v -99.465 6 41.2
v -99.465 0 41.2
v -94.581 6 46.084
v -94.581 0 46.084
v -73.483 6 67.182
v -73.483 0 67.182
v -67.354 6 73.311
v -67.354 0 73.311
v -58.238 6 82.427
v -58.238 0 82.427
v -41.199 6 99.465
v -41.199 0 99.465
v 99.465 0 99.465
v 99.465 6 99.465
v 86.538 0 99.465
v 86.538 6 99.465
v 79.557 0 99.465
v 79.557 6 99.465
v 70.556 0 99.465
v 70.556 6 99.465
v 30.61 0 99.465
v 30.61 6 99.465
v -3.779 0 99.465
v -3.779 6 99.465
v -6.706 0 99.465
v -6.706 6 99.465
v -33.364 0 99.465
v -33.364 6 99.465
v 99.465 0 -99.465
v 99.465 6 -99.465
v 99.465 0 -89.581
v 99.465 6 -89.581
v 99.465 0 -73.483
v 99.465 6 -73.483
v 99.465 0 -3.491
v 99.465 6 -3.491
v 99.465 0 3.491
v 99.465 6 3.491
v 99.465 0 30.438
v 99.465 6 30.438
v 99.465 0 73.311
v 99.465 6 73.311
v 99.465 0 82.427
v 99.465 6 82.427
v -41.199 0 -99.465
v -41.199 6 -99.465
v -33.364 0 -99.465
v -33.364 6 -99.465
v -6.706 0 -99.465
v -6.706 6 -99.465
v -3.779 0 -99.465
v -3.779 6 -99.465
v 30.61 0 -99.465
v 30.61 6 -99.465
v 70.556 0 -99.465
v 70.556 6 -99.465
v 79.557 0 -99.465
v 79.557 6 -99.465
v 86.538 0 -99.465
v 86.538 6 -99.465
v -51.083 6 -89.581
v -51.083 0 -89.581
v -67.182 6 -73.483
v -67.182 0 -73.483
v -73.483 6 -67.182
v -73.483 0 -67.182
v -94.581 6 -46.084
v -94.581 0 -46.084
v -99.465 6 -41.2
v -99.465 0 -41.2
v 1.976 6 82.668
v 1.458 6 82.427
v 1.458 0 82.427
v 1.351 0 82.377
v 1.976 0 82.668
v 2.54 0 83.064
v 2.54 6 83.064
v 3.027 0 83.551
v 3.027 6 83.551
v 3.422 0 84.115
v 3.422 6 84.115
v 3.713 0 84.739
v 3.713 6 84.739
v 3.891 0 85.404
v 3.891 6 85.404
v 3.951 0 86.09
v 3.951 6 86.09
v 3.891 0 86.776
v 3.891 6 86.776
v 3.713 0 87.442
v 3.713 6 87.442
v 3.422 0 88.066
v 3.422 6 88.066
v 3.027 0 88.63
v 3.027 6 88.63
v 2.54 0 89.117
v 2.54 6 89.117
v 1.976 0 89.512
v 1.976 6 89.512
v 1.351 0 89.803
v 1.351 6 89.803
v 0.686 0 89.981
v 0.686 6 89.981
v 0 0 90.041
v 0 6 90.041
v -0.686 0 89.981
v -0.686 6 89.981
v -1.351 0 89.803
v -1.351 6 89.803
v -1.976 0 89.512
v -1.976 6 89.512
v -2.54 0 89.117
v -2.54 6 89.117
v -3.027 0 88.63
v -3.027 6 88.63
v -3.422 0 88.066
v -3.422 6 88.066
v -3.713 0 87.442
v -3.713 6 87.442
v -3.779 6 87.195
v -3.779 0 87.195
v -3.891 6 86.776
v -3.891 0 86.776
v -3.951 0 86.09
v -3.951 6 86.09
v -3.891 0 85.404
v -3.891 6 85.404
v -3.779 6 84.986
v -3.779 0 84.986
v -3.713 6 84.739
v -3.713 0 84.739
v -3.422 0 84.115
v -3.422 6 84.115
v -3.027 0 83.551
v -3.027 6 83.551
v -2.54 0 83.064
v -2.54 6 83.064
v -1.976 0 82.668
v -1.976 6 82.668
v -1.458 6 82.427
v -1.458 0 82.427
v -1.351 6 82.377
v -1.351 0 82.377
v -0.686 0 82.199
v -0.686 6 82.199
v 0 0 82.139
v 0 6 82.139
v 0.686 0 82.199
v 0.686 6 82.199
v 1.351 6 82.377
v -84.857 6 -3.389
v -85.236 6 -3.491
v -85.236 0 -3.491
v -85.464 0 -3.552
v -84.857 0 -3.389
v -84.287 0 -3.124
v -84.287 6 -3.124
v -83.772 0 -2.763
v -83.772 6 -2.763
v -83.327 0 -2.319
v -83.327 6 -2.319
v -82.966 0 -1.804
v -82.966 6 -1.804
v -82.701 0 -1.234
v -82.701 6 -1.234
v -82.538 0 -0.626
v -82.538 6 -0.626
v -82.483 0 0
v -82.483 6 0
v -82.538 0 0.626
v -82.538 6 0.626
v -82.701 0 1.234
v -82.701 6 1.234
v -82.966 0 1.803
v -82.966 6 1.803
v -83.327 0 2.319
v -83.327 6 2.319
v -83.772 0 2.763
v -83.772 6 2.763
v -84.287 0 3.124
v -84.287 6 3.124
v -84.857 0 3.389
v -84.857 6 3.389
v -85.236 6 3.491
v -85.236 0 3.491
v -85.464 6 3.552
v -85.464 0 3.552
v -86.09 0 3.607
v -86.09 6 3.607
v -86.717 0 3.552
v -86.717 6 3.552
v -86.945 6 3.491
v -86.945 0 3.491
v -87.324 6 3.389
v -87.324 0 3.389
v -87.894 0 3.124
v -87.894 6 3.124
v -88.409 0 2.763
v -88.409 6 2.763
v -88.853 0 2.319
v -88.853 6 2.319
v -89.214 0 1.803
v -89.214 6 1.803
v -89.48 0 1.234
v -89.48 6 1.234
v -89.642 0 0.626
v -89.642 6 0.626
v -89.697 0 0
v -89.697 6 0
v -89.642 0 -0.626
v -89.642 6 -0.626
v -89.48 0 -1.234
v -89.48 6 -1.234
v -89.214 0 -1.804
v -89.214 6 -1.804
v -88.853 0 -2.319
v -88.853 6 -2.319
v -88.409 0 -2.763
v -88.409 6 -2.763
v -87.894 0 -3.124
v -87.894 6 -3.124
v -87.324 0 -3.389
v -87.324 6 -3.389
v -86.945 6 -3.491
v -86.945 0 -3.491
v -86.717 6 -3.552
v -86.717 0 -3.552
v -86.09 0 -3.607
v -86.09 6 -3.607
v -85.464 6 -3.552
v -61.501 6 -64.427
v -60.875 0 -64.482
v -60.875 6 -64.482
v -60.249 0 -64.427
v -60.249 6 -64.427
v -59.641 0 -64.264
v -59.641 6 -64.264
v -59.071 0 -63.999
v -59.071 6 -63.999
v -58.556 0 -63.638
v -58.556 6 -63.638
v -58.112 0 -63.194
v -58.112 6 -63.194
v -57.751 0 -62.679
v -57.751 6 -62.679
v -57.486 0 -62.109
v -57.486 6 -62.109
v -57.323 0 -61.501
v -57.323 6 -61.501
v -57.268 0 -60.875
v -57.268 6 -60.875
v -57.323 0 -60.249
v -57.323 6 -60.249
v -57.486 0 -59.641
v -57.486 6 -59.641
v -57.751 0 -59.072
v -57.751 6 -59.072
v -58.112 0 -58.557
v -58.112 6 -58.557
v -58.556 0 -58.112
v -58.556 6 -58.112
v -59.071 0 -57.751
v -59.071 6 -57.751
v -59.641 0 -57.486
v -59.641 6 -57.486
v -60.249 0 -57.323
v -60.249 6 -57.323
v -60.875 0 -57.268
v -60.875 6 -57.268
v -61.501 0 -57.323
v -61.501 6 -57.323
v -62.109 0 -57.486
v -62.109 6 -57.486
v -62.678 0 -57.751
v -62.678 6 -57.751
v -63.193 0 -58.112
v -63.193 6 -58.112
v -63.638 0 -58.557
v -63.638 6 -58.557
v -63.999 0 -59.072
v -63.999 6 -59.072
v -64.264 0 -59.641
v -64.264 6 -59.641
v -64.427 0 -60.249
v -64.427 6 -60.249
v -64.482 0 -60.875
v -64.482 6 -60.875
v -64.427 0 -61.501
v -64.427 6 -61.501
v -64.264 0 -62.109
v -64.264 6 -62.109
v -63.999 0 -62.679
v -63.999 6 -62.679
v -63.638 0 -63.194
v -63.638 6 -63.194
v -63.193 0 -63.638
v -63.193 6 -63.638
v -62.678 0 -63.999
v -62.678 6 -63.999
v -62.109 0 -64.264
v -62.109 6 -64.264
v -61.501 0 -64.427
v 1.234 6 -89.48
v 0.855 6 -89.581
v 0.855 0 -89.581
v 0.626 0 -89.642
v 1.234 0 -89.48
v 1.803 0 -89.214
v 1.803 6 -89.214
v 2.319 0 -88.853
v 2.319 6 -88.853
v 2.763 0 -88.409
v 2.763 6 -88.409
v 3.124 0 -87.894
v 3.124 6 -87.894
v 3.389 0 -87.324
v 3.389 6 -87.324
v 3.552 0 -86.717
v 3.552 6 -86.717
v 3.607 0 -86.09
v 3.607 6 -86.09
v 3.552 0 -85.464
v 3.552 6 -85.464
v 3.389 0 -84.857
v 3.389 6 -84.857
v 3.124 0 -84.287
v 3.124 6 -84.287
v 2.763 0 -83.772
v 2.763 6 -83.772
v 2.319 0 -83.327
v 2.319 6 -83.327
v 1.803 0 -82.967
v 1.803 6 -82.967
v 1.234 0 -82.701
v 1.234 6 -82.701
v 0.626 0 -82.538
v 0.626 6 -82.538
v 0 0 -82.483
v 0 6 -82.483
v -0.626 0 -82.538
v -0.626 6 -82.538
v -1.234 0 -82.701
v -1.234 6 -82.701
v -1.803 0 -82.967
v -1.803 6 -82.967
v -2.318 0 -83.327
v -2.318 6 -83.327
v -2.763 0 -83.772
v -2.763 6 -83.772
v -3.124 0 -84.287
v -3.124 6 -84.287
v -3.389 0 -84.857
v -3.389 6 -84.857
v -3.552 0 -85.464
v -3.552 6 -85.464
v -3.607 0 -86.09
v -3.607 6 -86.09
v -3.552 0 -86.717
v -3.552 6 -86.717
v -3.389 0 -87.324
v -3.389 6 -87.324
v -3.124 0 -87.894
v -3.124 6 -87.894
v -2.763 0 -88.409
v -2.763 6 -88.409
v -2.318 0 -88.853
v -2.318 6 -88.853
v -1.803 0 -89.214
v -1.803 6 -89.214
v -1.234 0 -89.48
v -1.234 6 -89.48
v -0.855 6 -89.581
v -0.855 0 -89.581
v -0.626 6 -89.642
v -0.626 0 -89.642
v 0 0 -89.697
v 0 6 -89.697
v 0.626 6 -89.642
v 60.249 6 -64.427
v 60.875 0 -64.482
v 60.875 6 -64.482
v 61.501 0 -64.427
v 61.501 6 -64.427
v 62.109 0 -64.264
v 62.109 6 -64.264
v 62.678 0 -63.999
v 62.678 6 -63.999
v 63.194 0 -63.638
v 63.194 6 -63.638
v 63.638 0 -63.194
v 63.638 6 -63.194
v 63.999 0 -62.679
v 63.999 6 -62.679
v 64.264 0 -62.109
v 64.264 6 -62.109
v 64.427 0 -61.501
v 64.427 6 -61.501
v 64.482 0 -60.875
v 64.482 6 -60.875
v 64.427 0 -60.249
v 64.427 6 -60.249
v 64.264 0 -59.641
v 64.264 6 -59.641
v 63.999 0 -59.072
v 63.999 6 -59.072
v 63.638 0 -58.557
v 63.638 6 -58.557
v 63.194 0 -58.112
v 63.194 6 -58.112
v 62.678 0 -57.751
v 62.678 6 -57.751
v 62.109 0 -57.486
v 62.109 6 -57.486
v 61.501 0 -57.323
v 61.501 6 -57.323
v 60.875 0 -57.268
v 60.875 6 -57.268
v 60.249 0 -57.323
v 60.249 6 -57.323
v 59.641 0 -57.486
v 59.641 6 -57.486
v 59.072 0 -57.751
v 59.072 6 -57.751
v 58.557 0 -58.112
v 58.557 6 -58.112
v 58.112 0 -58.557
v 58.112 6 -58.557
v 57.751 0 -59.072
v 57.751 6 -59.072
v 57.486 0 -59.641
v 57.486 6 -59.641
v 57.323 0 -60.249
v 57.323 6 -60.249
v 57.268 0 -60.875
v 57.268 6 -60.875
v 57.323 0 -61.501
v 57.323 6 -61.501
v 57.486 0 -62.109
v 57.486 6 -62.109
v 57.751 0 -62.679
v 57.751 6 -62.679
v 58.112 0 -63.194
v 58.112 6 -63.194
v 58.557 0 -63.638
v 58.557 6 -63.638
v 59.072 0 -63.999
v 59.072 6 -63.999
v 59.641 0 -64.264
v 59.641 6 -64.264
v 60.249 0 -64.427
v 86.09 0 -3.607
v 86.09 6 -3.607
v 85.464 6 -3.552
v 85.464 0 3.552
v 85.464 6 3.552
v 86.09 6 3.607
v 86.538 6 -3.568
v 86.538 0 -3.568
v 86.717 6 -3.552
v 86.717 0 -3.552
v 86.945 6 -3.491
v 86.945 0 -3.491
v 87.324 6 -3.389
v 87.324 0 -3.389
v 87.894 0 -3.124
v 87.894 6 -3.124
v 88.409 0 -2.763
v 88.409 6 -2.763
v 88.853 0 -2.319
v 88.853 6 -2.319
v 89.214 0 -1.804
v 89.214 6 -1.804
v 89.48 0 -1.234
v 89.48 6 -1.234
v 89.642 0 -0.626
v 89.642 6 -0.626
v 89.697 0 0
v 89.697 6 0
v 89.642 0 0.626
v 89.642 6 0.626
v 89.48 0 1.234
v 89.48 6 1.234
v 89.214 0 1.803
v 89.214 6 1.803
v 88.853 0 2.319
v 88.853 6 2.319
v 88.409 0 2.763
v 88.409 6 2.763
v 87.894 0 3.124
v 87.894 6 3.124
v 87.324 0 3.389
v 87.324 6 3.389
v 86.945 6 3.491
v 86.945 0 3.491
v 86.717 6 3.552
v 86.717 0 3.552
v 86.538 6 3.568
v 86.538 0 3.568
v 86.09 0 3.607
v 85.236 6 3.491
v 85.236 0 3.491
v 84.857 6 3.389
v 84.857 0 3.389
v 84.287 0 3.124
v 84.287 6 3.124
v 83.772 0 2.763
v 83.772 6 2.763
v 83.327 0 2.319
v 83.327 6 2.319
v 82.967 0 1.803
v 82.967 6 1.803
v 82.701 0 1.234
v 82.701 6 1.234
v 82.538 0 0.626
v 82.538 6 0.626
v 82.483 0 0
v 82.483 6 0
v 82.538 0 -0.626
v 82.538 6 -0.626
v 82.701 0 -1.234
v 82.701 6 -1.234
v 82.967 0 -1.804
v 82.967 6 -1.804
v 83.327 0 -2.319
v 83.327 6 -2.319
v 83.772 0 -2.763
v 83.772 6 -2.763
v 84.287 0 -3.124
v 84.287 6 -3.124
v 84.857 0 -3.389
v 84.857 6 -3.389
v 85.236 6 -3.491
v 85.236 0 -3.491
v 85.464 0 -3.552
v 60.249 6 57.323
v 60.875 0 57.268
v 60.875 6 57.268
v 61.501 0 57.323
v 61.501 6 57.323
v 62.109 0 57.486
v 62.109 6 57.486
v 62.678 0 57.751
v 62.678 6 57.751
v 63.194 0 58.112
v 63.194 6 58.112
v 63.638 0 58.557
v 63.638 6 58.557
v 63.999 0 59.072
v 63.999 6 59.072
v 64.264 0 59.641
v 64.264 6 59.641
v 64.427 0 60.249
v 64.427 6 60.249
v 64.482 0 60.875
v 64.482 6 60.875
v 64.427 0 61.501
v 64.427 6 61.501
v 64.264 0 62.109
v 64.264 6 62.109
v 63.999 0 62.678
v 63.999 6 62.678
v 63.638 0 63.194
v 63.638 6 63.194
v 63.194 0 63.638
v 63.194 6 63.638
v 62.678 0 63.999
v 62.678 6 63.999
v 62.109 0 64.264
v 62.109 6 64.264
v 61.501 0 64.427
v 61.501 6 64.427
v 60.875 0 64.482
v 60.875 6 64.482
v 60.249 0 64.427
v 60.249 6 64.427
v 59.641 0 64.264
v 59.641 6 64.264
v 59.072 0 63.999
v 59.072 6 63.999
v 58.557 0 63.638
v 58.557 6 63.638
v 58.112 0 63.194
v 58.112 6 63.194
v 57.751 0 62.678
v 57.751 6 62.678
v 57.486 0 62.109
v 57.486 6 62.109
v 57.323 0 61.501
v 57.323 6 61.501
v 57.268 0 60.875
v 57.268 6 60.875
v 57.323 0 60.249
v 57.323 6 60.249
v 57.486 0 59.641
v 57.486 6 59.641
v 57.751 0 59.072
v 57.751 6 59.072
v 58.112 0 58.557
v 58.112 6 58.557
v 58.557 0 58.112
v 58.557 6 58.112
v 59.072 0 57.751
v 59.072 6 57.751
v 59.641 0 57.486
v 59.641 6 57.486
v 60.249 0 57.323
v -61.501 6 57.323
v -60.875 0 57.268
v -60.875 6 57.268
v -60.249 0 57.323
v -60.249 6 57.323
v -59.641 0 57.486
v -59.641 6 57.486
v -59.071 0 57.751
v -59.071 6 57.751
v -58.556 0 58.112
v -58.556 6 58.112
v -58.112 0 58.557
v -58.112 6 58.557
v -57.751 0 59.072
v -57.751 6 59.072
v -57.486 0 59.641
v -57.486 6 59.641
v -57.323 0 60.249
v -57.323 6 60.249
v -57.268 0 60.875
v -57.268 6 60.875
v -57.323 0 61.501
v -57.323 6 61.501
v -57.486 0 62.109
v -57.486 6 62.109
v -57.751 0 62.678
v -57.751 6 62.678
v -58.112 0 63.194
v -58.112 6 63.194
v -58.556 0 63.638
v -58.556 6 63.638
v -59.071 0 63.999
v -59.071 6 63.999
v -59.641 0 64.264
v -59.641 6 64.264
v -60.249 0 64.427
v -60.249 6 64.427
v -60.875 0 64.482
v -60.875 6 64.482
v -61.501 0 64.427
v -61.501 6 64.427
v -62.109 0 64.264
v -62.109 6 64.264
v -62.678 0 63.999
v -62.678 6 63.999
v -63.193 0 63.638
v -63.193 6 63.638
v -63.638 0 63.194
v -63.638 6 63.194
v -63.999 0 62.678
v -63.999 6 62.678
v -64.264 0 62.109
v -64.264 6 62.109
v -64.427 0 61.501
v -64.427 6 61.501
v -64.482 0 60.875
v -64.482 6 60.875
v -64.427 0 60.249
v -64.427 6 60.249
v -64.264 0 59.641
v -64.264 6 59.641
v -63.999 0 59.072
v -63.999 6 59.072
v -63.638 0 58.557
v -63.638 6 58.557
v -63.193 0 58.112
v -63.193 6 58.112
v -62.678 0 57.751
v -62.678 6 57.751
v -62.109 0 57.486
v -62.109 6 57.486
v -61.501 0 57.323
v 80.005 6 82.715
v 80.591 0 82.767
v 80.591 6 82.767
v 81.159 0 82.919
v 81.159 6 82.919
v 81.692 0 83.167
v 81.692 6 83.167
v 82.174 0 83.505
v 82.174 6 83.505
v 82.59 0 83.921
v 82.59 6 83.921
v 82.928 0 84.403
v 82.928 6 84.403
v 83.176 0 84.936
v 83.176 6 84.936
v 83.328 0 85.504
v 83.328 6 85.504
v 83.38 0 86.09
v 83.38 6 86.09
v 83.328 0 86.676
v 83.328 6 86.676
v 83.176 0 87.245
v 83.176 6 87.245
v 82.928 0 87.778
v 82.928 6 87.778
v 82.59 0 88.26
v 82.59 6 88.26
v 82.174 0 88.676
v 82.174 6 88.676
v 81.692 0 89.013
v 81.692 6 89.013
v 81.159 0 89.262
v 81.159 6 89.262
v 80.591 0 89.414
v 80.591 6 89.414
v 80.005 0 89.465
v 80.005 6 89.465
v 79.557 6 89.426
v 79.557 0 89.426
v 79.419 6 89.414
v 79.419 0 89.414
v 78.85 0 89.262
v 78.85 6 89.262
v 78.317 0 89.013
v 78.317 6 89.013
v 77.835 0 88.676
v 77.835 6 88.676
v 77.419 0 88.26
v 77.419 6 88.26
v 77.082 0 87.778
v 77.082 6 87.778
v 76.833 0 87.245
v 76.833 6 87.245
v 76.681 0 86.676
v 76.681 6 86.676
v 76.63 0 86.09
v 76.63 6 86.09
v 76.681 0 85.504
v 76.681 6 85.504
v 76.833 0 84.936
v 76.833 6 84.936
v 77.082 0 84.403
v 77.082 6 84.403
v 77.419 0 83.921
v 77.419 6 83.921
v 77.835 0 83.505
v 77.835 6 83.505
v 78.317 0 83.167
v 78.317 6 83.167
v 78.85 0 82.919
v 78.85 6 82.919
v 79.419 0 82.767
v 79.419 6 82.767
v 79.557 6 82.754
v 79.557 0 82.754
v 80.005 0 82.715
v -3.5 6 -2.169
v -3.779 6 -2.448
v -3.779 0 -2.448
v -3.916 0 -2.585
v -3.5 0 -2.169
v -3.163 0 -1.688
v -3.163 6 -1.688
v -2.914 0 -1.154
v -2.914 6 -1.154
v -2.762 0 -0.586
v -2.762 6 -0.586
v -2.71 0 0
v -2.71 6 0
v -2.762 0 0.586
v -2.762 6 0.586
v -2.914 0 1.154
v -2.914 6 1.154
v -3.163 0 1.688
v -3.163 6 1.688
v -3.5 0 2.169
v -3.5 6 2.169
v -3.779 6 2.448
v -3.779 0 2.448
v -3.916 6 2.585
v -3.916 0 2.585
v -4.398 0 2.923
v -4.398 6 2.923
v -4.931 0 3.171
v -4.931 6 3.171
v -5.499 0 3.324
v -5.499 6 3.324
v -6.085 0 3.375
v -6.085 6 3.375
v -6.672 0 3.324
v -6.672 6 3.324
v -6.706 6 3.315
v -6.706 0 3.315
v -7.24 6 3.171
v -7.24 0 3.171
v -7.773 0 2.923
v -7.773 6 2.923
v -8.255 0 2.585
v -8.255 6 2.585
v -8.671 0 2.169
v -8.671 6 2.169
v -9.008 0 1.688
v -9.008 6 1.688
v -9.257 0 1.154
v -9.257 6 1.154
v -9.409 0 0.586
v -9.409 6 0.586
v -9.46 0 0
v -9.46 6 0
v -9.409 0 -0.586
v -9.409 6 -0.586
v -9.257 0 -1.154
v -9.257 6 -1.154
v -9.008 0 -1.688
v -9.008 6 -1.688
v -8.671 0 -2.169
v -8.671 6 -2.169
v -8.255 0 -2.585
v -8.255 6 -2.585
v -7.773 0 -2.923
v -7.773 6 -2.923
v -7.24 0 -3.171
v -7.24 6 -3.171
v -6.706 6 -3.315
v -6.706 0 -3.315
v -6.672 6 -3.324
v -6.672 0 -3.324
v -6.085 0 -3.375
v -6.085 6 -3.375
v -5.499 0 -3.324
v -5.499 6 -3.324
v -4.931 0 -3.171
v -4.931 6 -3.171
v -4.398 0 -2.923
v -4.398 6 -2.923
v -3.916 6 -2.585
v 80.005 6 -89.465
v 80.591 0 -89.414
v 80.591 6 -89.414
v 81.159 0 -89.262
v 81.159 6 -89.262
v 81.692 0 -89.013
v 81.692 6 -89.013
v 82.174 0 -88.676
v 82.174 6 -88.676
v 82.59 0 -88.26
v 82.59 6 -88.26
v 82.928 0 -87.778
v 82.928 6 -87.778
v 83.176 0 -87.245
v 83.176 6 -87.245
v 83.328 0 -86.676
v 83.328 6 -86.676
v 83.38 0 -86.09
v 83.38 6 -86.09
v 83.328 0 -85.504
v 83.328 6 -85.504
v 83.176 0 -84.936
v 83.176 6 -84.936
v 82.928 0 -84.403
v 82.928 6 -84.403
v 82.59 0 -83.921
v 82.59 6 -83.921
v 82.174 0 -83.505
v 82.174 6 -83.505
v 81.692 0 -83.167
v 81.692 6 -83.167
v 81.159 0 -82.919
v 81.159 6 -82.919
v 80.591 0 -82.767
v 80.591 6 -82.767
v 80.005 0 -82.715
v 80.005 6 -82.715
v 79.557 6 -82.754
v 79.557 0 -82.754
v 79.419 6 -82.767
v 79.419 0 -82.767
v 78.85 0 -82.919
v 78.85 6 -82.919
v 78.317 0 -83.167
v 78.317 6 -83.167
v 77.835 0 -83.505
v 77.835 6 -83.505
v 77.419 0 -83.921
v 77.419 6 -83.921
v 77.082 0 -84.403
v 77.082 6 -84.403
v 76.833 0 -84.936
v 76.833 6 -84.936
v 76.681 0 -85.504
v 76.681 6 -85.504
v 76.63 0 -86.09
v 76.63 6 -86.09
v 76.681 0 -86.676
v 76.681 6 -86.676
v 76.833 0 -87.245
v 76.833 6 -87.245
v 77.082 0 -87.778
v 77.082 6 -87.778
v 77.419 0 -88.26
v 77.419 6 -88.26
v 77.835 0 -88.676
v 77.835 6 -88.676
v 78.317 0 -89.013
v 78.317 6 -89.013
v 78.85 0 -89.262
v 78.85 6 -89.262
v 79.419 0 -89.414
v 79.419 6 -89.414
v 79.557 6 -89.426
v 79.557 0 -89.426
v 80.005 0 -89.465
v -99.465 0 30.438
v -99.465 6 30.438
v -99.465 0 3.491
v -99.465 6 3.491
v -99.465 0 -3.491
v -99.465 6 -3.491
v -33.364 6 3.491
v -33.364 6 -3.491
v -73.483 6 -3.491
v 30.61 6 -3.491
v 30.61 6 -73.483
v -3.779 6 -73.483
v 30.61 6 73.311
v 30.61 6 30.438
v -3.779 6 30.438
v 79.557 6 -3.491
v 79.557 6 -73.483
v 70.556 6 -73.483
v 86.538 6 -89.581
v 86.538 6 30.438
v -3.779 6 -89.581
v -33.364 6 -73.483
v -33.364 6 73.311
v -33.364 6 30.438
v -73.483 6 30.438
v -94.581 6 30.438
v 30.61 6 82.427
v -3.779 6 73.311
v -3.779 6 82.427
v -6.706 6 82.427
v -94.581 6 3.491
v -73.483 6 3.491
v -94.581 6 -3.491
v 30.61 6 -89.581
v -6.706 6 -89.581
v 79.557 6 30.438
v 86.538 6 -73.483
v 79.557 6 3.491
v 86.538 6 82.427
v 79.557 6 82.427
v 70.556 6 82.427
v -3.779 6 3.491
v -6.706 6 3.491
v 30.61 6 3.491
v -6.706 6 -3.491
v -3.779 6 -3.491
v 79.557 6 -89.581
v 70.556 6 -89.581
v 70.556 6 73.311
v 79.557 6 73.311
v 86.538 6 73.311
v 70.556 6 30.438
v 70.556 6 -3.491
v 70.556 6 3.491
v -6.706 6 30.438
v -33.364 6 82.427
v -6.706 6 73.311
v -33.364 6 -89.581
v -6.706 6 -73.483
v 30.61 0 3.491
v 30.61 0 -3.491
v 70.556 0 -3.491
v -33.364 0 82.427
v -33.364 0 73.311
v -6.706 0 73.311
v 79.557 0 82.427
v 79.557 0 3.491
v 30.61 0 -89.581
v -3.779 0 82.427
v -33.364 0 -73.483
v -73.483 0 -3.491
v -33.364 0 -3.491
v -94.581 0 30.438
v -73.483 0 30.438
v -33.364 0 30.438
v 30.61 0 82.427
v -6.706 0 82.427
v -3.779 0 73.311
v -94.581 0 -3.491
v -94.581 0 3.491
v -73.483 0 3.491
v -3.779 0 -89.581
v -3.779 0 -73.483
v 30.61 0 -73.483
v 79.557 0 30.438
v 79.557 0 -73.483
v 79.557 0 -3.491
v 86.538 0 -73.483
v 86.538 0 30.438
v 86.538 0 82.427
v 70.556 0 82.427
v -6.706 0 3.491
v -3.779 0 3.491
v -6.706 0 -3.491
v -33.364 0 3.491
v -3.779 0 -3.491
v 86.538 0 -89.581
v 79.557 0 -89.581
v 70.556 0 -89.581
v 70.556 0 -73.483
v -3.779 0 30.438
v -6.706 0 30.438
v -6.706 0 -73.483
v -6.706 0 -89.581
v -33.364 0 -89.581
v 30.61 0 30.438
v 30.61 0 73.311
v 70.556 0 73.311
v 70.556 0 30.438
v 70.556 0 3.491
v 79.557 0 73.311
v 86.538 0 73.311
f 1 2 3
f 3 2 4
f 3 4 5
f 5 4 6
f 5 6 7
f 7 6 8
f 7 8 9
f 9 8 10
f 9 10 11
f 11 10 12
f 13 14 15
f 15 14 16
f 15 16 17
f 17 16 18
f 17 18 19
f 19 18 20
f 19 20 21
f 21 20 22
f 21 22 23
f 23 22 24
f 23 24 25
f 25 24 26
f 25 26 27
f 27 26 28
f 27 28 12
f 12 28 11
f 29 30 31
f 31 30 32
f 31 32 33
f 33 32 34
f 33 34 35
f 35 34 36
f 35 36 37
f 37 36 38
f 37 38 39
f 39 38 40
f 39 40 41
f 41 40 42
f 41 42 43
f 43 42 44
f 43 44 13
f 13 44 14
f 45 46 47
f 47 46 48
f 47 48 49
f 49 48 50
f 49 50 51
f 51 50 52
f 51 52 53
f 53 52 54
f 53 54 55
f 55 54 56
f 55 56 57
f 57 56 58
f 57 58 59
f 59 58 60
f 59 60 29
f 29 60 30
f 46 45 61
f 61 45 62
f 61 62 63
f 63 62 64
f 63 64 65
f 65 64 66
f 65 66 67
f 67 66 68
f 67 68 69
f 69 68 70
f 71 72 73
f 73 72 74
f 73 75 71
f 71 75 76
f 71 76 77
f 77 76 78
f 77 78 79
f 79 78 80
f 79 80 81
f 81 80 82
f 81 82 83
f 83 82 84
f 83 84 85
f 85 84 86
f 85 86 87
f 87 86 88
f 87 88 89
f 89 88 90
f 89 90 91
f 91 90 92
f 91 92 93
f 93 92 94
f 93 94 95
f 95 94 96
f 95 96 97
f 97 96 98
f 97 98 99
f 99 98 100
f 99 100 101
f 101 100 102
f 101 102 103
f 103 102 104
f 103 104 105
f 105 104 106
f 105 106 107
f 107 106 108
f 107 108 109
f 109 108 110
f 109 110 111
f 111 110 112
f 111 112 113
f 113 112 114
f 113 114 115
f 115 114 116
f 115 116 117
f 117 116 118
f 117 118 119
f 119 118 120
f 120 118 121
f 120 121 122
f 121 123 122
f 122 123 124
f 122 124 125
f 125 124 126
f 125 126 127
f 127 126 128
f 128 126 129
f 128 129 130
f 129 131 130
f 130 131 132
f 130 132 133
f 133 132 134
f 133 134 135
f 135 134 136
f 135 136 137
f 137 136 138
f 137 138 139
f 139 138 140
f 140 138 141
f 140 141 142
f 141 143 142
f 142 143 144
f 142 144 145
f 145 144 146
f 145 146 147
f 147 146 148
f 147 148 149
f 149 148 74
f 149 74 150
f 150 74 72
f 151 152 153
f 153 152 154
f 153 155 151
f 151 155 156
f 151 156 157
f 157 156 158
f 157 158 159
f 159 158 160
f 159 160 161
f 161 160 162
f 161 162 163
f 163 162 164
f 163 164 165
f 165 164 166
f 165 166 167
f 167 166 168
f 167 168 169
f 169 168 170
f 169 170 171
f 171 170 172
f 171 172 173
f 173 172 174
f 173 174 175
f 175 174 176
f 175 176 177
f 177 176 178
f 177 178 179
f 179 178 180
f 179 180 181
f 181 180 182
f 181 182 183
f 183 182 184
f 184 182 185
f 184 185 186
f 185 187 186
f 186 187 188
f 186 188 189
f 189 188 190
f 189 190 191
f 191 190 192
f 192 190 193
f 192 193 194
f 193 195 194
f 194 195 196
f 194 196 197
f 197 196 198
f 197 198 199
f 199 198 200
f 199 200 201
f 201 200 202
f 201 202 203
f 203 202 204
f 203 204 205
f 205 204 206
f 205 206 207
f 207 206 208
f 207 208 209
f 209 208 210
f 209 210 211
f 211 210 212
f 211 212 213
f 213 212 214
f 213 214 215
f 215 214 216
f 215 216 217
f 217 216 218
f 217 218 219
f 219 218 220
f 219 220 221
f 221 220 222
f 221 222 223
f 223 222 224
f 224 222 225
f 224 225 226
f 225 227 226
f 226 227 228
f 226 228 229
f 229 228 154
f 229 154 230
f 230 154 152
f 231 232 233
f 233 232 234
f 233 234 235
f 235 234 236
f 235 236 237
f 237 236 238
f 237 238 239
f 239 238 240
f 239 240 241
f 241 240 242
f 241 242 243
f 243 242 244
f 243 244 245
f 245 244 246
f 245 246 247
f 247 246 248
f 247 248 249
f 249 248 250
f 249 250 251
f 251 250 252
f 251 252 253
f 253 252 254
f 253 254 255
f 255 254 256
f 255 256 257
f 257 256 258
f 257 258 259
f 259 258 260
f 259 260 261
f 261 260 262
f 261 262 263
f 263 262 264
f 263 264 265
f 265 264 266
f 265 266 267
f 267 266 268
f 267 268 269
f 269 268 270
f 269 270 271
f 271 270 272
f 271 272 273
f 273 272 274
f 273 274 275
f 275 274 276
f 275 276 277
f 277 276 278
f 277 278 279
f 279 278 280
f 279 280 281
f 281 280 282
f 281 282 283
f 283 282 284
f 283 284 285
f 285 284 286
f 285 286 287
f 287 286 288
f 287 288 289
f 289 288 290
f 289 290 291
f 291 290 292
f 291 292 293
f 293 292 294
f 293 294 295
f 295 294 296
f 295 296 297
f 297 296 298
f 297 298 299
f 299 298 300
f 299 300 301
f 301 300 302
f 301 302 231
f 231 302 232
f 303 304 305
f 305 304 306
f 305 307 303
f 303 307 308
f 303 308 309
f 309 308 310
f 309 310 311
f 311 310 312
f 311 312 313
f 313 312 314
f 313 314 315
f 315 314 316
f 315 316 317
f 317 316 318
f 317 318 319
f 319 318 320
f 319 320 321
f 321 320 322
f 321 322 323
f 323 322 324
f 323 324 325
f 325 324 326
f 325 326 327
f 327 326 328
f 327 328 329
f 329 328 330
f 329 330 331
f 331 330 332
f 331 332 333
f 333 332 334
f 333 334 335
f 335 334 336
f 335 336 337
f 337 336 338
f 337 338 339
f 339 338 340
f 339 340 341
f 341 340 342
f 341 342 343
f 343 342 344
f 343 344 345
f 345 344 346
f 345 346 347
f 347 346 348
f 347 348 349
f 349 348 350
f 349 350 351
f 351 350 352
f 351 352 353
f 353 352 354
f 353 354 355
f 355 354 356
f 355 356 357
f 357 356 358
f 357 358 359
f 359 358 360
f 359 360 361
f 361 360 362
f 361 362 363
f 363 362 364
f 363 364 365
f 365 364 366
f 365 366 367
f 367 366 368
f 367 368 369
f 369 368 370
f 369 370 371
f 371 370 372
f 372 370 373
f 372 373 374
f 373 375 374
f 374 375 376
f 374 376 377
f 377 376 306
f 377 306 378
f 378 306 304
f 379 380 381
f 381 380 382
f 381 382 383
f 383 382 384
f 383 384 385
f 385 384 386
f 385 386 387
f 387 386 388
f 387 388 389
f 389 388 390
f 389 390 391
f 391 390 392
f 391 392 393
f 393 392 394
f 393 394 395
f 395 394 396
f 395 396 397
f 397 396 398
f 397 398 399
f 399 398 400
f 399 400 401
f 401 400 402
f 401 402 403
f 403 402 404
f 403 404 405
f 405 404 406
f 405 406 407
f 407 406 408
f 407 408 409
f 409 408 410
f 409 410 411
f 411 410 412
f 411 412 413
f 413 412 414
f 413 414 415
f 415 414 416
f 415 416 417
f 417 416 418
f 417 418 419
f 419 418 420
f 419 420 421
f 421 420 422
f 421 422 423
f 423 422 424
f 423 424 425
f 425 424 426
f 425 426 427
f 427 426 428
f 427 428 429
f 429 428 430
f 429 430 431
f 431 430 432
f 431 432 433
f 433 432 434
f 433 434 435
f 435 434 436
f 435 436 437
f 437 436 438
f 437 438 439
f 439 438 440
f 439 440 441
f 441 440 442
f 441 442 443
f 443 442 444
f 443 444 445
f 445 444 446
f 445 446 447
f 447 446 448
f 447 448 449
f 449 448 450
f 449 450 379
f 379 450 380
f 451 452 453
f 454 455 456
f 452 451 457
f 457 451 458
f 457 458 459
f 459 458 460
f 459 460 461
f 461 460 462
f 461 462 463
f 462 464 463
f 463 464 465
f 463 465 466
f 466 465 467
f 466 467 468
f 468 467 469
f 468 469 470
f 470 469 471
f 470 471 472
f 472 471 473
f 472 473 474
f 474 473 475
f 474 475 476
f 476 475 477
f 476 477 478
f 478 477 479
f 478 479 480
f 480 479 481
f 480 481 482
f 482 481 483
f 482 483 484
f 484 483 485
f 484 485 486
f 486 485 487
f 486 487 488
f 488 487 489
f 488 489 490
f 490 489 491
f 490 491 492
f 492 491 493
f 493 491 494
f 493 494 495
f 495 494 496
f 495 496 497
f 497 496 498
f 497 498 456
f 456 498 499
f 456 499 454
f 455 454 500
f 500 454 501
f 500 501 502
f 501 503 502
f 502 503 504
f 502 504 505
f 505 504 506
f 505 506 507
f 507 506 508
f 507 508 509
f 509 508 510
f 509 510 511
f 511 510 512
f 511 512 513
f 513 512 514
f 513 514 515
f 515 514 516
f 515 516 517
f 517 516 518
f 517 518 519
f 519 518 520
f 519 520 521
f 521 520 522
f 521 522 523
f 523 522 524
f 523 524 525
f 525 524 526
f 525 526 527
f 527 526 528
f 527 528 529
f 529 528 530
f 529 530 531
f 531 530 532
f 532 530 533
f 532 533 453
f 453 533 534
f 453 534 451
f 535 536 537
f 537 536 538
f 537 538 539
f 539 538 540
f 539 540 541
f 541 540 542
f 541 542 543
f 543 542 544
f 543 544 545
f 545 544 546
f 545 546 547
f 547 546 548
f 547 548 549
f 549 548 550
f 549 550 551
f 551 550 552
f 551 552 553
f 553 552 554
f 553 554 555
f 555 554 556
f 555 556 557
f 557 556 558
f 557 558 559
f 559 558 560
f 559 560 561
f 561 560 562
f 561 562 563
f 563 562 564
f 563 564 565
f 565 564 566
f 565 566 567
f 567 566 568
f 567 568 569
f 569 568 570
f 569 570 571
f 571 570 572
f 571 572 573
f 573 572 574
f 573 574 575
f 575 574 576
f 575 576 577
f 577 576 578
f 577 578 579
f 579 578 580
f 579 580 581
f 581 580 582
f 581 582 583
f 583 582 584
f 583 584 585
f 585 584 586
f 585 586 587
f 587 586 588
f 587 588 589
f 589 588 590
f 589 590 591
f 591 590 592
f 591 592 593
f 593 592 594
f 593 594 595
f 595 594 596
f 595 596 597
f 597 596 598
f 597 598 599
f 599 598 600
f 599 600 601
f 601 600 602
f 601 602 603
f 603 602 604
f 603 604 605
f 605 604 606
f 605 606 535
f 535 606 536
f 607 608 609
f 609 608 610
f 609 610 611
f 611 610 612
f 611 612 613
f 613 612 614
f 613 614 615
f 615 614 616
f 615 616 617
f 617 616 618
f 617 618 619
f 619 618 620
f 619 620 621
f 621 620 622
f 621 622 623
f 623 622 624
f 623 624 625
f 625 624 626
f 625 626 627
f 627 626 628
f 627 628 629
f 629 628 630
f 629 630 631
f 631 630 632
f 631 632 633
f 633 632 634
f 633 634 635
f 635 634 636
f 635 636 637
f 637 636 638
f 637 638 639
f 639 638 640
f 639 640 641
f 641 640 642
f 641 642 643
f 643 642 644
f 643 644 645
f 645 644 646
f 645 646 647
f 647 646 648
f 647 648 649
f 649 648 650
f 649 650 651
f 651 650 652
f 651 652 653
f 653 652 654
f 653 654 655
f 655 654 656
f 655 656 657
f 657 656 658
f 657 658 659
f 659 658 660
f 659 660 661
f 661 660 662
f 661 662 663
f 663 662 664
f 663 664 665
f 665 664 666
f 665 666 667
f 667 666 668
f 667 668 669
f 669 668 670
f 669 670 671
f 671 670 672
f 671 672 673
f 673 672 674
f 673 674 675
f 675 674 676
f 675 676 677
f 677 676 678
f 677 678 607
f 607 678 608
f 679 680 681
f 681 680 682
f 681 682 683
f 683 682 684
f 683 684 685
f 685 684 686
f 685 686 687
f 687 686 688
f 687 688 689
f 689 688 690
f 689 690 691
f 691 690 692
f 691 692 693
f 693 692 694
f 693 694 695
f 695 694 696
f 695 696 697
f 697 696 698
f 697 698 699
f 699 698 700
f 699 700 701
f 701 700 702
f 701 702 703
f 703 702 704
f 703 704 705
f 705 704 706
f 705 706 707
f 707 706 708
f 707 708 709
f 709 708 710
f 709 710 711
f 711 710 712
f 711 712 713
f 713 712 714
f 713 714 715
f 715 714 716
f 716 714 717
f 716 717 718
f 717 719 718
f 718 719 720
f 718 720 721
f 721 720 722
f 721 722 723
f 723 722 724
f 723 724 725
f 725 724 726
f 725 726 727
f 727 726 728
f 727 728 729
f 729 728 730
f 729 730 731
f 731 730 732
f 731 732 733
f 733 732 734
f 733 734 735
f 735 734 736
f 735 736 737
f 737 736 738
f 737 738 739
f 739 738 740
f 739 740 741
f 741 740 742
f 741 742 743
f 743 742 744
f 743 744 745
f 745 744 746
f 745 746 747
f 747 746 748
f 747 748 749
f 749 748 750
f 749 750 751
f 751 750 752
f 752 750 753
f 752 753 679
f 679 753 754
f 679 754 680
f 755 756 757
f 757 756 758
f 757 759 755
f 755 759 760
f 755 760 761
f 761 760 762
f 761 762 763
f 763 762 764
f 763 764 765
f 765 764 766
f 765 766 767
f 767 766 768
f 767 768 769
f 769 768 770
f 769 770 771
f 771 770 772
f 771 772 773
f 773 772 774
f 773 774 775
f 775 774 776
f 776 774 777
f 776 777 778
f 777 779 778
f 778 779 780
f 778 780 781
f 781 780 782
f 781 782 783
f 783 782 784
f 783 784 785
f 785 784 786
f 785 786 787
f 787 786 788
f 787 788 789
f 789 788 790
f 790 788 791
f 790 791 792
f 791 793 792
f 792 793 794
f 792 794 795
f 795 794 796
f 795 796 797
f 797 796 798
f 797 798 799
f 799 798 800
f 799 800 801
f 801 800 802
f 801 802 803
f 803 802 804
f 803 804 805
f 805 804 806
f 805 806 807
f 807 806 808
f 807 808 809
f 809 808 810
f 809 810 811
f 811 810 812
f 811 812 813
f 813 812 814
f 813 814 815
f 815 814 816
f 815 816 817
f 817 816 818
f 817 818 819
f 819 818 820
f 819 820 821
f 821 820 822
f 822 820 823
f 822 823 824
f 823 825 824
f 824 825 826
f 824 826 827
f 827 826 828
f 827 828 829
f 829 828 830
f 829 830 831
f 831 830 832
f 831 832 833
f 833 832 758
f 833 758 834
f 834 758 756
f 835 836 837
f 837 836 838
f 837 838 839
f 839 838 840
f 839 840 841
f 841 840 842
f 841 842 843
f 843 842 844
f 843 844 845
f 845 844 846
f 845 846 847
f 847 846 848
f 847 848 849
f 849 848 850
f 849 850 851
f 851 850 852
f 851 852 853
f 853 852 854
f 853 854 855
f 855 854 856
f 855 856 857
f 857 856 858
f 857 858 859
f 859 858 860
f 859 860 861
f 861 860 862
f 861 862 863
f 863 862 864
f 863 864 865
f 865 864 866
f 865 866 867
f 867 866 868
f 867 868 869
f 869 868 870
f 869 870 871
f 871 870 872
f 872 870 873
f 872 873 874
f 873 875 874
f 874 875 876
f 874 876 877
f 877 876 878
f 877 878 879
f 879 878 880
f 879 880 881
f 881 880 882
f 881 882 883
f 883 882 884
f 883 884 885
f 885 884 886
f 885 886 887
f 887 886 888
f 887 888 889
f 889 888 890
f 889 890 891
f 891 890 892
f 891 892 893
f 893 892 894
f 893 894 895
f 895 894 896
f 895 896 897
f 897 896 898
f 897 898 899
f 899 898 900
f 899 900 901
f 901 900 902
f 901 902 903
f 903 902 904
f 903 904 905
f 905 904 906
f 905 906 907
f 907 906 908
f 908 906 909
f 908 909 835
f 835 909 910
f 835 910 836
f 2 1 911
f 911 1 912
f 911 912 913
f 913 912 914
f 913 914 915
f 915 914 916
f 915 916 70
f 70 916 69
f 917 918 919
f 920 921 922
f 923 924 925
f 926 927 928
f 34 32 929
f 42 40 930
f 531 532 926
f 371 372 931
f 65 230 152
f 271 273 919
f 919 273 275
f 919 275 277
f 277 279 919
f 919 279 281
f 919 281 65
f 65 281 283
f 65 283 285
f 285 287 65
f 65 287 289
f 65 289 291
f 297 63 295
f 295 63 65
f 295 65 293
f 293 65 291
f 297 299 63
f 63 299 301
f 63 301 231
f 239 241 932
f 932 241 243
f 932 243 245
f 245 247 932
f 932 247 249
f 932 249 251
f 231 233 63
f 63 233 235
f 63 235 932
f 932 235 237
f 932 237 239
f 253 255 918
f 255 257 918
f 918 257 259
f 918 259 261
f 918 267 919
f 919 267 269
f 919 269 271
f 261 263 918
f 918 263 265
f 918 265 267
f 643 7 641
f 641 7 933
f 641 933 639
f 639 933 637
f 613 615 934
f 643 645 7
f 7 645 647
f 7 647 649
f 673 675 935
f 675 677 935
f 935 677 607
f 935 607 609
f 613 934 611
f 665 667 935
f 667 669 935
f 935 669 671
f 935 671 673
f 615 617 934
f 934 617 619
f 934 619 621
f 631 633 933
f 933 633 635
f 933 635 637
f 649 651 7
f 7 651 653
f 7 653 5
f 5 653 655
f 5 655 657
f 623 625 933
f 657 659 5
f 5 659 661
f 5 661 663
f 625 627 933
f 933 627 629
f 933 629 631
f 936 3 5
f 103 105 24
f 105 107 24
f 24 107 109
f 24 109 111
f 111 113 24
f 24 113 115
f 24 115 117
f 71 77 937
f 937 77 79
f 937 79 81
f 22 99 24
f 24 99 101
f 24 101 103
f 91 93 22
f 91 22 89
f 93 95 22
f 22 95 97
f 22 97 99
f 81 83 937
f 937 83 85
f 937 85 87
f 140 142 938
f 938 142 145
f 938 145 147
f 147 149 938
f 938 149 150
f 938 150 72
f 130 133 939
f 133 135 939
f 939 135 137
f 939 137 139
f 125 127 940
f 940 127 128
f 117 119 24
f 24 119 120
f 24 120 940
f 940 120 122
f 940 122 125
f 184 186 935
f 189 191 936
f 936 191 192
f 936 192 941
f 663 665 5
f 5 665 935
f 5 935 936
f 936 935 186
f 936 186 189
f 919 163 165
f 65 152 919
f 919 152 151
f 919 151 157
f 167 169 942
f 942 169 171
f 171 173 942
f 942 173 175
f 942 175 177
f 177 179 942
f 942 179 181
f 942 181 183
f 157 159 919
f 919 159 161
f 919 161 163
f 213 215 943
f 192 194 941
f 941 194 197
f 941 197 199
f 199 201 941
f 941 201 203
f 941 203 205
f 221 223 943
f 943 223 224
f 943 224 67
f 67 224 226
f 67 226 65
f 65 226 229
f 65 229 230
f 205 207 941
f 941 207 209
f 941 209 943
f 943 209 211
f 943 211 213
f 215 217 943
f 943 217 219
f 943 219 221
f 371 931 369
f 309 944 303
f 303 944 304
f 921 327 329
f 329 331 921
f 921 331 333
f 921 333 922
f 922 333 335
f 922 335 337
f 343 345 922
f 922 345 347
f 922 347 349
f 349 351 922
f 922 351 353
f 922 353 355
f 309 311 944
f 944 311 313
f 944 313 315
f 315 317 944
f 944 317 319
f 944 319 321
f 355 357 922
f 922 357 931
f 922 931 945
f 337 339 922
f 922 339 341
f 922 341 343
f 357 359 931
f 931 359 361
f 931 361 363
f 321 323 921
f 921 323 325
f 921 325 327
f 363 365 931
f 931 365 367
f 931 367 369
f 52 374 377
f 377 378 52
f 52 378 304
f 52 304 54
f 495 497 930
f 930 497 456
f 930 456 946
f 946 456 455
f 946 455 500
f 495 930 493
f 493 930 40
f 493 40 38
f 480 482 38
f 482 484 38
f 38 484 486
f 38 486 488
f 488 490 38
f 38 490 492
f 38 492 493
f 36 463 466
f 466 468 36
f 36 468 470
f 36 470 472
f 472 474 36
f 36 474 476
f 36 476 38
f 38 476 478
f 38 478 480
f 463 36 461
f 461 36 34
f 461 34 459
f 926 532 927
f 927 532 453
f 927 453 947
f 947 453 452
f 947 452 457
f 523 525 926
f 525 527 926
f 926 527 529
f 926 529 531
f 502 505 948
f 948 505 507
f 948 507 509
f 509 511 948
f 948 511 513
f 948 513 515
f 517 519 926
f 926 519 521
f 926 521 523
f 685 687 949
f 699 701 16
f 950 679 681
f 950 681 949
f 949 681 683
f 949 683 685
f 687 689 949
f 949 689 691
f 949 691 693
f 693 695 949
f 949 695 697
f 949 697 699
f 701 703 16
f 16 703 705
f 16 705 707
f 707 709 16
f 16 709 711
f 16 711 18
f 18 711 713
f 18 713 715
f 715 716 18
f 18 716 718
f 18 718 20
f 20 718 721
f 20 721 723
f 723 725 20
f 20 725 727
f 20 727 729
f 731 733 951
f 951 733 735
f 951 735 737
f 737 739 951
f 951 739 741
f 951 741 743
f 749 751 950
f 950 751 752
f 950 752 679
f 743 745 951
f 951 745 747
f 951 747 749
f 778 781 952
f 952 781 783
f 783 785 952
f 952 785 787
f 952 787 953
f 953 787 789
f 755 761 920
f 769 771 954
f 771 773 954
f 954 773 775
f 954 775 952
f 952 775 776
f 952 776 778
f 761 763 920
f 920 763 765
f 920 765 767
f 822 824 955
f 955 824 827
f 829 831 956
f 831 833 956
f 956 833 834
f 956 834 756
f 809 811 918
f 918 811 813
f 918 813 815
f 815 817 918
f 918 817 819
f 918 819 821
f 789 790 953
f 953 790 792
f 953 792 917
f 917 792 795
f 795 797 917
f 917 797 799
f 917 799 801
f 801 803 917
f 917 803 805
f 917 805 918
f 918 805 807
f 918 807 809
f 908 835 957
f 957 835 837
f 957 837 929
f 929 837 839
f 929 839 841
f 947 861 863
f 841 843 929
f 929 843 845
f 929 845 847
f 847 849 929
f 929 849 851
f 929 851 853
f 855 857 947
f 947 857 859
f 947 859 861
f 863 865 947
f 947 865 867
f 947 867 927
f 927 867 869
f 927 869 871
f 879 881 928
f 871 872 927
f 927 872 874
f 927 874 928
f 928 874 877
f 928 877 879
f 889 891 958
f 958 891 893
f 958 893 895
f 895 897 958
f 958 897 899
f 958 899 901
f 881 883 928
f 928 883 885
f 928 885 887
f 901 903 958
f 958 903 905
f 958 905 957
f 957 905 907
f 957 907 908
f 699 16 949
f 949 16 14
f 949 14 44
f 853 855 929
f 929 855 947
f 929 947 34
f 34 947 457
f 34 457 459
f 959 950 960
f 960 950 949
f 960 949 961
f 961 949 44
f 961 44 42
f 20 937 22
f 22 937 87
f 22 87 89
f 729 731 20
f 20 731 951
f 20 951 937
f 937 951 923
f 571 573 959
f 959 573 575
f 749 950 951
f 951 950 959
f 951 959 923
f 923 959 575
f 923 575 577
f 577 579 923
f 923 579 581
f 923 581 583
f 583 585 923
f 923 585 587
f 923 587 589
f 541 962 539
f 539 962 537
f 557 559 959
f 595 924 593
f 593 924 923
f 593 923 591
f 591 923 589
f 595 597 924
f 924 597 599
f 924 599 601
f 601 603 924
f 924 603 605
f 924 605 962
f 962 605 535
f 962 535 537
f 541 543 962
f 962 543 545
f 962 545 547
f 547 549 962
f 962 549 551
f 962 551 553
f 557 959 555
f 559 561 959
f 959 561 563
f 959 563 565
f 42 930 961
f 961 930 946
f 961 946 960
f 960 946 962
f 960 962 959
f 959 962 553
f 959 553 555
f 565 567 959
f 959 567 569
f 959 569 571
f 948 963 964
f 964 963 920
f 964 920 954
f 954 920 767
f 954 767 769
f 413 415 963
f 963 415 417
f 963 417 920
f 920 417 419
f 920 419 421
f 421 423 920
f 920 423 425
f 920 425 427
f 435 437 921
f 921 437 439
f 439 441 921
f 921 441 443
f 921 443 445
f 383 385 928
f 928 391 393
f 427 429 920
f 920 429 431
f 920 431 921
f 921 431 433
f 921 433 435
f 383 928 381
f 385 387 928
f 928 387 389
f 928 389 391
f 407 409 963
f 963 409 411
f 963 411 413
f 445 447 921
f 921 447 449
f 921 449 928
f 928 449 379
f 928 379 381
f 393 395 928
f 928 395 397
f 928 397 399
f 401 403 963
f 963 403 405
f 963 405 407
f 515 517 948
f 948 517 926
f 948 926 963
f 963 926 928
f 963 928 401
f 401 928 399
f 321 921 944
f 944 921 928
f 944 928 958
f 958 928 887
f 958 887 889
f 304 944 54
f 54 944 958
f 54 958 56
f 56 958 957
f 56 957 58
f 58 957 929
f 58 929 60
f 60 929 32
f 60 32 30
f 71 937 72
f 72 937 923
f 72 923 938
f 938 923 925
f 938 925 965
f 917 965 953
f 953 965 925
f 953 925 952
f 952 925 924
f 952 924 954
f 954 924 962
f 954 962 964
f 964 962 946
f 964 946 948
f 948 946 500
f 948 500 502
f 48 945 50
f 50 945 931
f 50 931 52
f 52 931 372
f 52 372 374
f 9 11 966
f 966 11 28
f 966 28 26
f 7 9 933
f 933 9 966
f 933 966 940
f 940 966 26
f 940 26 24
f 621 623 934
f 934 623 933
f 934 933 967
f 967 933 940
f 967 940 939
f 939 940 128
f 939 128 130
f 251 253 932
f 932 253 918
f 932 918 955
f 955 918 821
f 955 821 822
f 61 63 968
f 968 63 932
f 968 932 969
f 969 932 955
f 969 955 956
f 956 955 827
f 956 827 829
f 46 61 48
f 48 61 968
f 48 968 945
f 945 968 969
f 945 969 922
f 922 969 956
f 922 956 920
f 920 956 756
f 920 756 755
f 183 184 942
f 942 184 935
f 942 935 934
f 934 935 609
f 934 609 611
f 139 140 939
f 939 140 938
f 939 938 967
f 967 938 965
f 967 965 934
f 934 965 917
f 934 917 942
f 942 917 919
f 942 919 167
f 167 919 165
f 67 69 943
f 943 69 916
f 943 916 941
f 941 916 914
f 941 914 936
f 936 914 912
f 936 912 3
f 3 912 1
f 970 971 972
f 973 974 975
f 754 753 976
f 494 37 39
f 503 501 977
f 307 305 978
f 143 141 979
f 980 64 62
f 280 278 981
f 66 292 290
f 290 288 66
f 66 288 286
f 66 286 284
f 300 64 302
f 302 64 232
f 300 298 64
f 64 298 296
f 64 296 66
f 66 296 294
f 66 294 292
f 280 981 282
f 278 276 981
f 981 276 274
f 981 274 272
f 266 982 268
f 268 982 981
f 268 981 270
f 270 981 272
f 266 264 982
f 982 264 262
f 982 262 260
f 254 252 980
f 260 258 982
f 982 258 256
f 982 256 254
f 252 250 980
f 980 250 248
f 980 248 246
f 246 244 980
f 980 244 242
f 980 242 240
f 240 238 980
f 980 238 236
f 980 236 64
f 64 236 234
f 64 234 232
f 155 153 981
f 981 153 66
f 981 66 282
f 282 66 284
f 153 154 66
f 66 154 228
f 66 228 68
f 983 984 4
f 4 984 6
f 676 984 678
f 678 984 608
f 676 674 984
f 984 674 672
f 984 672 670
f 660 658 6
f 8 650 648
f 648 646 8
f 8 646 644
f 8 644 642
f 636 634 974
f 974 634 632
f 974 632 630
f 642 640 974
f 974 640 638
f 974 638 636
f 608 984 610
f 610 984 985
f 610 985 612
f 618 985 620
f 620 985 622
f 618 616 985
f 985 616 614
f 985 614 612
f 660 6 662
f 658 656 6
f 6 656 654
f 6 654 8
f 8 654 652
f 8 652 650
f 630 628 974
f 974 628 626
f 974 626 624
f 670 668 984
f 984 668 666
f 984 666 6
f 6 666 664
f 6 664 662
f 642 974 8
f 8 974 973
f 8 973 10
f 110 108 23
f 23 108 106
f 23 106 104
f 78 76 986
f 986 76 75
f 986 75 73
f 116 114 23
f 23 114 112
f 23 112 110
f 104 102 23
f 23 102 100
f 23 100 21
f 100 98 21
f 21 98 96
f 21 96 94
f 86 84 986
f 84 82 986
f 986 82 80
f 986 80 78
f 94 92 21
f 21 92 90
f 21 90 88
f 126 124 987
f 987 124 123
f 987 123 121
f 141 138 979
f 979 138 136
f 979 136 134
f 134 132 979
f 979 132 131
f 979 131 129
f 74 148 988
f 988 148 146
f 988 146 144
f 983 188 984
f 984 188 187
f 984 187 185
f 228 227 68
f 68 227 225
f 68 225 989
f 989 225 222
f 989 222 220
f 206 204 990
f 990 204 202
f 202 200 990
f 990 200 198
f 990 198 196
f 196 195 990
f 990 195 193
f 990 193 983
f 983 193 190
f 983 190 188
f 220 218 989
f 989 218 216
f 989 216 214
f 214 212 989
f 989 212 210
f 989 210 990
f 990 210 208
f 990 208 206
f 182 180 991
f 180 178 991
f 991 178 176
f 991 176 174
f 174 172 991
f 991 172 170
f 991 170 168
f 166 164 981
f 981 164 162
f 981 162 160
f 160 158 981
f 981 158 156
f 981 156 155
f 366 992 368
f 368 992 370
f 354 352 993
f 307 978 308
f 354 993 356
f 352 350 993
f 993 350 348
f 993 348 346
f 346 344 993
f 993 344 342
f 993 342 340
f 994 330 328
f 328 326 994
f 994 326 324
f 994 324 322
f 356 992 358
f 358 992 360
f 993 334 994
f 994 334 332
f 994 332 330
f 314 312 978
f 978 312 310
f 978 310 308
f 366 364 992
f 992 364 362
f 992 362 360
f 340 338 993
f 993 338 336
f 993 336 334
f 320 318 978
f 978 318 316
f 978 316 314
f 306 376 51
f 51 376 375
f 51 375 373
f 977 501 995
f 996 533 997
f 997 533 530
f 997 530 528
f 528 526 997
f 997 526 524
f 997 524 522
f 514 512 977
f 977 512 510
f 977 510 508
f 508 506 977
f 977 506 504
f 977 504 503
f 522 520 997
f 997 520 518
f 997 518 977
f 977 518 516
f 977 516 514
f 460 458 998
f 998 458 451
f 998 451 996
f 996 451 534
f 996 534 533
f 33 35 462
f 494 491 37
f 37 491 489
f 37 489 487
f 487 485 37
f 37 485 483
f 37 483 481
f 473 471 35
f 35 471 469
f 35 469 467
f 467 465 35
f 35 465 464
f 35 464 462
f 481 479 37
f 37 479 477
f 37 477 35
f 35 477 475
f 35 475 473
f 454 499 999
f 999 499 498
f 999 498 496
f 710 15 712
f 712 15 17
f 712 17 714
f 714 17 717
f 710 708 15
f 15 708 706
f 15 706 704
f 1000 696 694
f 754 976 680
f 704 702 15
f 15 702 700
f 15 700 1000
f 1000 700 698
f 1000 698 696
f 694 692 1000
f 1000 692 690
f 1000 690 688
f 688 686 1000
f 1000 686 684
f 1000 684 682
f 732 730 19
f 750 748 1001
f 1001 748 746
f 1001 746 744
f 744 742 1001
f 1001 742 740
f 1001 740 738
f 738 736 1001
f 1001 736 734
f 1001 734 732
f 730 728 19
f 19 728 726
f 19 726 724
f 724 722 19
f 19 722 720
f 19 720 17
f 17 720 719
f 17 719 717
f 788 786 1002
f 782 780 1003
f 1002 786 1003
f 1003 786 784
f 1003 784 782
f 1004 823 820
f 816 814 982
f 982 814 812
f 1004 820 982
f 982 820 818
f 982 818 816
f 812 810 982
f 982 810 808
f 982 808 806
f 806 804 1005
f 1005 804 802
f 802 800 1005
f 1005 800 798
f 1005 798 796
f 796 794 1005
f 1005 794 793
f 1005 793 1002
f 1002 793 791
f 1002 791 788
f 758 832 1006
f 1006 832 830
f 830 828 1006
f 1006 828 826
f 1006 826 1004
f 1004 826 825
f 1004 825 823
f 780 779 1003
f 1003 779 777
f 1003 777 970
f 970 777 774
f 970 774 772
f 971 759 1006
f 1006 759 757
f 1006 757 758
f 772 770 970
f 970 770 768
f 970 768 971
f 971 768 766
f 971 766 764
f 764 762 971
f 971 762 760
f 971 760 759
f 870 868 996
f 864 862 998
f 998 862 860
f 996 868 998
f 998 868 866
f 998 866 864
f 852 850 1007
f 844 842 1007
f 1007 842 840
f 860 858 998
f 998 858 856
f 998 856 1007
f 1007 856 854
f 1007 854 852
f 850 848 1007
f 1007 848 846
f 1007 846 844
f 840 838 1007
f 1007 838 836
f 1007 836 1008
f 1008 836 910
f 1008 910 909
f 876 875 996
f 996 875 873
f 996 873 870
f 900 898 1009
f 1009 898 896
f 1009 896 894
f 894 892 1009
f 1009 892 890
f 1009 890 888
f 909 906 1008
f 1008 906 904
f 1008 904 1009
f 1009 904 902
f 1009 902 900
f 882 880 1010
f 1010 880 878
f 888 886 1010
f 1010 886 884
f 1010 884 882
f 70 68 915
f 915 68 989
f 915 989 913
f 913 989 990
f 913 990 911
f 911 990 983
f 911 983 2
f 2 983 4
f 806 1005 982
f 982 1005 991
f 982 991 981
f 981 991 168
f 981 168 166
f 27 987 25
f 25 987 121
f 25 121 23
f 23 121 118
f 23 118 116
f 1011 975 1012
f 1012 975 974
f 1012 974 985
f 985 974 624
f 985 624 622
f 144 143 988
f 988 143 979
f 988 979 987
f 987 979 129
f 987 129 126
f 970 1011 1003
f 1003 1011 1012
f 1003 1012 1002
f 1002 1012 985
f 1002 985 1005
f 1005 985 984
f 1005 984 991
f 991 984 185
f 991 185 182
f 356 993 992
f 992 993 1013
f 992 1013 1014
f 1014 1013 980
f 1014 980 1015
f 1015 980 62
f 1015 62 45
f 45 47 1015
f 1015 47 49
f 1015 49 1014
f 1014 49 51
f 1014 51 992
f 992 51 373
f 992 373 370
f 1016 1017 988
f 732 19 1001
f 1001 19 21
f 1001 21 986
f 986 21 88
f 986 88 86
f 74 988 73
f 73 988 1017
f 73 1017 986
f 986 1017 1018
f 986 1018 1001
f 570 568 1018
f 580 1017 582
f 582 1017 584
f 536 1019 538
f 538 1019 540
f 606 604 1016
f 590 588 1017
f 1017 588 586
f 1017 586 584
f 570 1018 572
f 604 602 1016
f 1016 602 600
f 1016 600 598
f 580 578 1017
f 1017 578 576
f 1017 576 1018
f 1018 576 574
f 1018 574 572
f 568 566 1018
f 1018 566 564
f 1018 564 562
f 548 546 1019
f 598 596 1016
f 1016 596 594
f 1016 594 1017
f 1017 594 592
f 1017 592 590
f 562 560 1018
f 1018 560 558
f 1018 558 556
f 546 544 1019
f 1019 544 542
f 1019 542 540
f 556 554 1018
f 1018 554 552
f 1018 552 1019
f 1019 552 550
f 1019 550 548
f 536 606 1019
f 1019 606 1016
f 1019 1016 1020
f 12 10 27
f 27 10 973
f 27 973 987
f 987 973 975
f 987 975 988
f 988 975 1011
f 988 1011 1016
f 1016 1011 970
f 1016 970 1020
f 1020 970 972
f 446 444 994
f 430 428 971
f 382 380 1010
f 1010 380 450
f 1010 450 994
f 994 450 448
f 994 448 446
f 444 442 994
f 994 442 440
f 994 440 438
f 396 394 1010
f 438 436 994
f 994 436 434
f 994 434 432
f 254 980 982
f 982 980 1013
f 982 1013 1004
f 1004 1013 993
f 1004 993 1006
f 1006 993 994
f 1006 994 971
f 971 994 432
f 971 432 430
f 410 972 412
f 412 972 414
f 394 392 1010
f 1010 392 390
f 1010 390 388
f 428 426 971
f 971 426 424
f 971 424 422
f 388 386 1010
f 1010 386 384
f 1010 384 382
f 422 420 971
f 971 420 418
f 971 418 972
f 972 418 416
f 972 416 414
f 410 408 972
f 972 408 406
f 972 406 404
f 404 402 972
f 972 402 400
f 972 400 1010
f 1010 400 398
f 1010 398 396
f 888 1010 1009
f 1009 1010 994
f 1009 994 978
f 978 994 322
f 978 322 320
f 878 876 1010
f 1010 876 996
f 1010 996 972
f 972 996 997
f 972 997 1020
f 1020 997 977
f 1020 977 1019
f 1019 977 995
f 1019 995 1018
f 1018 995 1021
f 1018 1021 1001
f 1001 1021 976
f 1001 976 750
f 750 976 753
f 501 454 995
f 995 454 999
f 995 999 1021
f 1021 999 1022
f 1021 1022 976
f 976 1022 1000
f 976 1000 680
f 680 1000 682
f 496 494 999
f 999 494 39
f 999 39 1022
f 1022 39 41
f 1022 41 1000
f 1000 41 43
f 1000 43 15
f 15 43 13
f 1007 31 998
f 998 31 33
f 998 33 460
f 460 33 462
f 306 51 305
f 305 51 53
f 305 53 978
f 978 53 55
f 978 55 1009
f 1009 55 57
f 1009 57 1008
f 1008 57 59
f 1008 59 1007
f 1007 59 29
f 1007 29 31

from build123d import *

# Parameters (mm, degrees)
SKETCH1_R           = 3.951125178
SKETCH1_R_2         = 3.606945722
SKETCH1_R_3         = 3.375000002
SKETCH1_R_4         = 3.375000001
SKETCH1_R_5         = 3.374999999
BOSS_EXTRUDE1_DEPTH = 6


with BuildPart() as part:
    # Sketch1 → Boss-Extrude1 (new body)
    with BuildSketch(Plane(origin=(0, 0, 0), x_dir=(1, 0, 0), z_dir=(0, 1, 0))):
        Polygon((-41.199524293, 99.465227688), (99.465250609, 99.465227688), (99.465250609, -99.465227688), (-41.199524293, -99.465227688), (-99.465227688, -41.199524293), (-99.465227688, 41.199524293), align=None)
        with Locations((0, -86.090250609)):
            Circle(SKETCH1_R, mode=Mode.SUBTRACT)
        with Locations((-86.090250609, 0)):
            Circle(SKETCH1_R_2, mode=Mode.SUBTRACT)
        with Locations((-60.875, 60.875)):
            Circle(SKETCH1_R_2, mode=Mode.SUBTRACT)
        with Locations((0, 86.090250609)):
            Circle(SKETCH1_R_2, mode=Mode.SUBTRACT)
        with Locations((60.875, 60.875)):
            Circle(SKETCH1_R_2, mode=Mode.SUBTRACT)
        with Locations((86.090250609, 0)):
            Circle(SKETCH1_R_2, mode=Mode.SUBTRACT)
        with Locations((60.875, -60.875)):
            Circle(SKETCH1_R_2, mode=Mode.SUBTRACT)
        with Locations((-60.875, -60.875)):
            Circle(SKETCH1_R_2, mode=Mode.SUBTRACT)
        with Locations((80.004750061, -86.090249939)):
            Circle(SKETCH1_R_3, mode=Mode.SUBTRACT)
        with Locations((-6.085500548, 6.7e-07)):
            Circle(SKETCH1_R_4, mode=Mode.SUBTRACT)
        with Locations((80.004750061, 86.09025128)):
            Circle(SKETCH1_R_5, mode=Mode.SUBTRACT)
    extrude(amount=BOSS_EXTRUDE1_DEPTH)


solid = part.part
